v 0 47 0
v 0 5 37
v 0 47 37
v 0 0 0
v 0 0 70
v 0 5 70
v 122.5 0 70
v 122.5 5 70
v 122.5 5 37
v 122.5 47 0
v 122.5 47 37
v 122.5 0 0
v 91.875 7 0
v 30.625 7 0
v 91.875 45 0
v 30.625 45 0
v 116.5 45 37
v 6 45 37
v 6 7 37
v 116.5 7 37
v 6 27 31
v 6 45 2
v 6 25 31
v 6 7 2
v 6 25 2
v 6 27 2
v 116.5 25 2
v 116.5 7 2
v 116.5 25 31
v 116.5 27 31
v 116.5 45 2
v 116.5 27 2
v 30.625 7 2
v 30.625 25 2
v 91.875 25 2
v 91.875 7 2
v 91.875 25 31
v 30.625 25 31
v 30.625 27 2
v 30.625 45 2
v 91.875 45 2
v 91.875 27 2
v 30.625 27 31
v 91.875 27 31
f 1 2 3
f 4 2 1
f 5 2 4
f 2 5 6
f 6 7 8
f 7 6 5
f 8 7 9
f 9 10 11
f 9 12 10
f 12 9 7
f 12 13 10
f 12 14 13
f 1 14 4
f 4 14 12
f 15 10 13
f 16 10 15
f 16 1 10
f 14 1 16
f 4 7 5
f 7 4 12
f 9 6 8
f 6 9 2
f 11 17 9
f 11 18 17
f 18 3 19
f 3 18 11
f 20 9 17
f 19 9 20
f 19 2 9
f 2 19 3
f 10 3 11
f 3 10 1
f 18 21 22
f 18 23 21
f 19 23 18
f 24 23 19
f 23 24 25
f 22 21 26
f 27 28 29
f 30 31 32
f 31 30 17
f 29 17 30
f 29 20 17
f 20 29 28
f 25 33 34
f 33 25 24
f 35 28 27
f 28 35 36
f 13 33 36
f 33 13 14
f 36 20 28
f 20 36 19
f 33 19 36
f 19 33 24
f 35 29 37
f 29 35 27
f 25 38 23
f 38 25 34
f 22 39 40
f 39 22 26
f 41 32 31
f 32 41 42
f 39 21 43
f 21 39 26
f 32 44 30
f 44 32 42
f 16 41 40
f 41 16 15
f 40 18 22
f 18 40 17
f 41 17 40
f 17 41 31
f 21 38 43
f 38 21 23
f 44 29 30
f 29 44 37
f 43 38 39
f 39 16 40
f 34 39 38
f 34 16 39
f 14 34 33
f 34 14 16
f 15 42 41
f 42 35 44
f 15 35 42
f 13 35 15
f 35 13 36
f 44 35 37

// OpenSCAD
// Single Tower Casette Tape Holder
// by Nathan Wittstock <nate@fardog.io>

// preview[view:south east, tilt:top diagonal]

/* [Cassette] */
number_of_cassettes = 2; //[5:15]
x_tolerance = 1.5; //[1.0:3.0]
y_tolerance = 1.0; //[1.0:3.0]

/* [Hidden] */
case_height = 109.0 + x_tolerance;
case_width = 17.0 + y_tolerance;
case_depth = 70.0;
case_padding = 6;
foot_height = 5;

wall_thickness_min = 2;

case_pocket_height = case_depth - (case_depth / 2);
case_pocket_gap = wall_thickness_min;

base_height = case_pocket_height + wall_thickness_min;
base_depth = (case_width + case_pocket_gap) * number_of_cassettes + case_pocket_gap + foot_height;
base_width = case_height + (case_padding * 2);

module base() {
	cube([base_width, base_depth, base_height]);
}

module foot() {
	cube([base_width, foot_height, case_depth]);
}

module case_slots() {
	union() {
		for (i = [0:number_of_cassettes - 1]) {
			current_y = case_pocket_gap + ((case_width + case_pocket_gap) * i);
			translate([case_padding, current_y, base_height - case_pocket_height])
			cube([case_height, case_width, case_pocket_height + 1]);
		}
	}
}

module depth_cutout() {
	union() {
		translate([case_padding, case_padding, base_height - case_padding])
			cube([base_width - (case_padding * 2), base_depth - (case_padding * 2) - wall_thickness_min, case_padding * 2]);
		translate([base_width / 4, wall_thickness_min, 0])
			cube([base_width / 2, base_depth - foot_height - (wall_thickness_min * 2), case_pocket_height]);
	}
}

difference() {
	union() {
		foot();
		base();
	}
	translate([0, foot_height, 0]) {
		union() {
			case_slots();
			depth_cutout();
		}
	}
}
